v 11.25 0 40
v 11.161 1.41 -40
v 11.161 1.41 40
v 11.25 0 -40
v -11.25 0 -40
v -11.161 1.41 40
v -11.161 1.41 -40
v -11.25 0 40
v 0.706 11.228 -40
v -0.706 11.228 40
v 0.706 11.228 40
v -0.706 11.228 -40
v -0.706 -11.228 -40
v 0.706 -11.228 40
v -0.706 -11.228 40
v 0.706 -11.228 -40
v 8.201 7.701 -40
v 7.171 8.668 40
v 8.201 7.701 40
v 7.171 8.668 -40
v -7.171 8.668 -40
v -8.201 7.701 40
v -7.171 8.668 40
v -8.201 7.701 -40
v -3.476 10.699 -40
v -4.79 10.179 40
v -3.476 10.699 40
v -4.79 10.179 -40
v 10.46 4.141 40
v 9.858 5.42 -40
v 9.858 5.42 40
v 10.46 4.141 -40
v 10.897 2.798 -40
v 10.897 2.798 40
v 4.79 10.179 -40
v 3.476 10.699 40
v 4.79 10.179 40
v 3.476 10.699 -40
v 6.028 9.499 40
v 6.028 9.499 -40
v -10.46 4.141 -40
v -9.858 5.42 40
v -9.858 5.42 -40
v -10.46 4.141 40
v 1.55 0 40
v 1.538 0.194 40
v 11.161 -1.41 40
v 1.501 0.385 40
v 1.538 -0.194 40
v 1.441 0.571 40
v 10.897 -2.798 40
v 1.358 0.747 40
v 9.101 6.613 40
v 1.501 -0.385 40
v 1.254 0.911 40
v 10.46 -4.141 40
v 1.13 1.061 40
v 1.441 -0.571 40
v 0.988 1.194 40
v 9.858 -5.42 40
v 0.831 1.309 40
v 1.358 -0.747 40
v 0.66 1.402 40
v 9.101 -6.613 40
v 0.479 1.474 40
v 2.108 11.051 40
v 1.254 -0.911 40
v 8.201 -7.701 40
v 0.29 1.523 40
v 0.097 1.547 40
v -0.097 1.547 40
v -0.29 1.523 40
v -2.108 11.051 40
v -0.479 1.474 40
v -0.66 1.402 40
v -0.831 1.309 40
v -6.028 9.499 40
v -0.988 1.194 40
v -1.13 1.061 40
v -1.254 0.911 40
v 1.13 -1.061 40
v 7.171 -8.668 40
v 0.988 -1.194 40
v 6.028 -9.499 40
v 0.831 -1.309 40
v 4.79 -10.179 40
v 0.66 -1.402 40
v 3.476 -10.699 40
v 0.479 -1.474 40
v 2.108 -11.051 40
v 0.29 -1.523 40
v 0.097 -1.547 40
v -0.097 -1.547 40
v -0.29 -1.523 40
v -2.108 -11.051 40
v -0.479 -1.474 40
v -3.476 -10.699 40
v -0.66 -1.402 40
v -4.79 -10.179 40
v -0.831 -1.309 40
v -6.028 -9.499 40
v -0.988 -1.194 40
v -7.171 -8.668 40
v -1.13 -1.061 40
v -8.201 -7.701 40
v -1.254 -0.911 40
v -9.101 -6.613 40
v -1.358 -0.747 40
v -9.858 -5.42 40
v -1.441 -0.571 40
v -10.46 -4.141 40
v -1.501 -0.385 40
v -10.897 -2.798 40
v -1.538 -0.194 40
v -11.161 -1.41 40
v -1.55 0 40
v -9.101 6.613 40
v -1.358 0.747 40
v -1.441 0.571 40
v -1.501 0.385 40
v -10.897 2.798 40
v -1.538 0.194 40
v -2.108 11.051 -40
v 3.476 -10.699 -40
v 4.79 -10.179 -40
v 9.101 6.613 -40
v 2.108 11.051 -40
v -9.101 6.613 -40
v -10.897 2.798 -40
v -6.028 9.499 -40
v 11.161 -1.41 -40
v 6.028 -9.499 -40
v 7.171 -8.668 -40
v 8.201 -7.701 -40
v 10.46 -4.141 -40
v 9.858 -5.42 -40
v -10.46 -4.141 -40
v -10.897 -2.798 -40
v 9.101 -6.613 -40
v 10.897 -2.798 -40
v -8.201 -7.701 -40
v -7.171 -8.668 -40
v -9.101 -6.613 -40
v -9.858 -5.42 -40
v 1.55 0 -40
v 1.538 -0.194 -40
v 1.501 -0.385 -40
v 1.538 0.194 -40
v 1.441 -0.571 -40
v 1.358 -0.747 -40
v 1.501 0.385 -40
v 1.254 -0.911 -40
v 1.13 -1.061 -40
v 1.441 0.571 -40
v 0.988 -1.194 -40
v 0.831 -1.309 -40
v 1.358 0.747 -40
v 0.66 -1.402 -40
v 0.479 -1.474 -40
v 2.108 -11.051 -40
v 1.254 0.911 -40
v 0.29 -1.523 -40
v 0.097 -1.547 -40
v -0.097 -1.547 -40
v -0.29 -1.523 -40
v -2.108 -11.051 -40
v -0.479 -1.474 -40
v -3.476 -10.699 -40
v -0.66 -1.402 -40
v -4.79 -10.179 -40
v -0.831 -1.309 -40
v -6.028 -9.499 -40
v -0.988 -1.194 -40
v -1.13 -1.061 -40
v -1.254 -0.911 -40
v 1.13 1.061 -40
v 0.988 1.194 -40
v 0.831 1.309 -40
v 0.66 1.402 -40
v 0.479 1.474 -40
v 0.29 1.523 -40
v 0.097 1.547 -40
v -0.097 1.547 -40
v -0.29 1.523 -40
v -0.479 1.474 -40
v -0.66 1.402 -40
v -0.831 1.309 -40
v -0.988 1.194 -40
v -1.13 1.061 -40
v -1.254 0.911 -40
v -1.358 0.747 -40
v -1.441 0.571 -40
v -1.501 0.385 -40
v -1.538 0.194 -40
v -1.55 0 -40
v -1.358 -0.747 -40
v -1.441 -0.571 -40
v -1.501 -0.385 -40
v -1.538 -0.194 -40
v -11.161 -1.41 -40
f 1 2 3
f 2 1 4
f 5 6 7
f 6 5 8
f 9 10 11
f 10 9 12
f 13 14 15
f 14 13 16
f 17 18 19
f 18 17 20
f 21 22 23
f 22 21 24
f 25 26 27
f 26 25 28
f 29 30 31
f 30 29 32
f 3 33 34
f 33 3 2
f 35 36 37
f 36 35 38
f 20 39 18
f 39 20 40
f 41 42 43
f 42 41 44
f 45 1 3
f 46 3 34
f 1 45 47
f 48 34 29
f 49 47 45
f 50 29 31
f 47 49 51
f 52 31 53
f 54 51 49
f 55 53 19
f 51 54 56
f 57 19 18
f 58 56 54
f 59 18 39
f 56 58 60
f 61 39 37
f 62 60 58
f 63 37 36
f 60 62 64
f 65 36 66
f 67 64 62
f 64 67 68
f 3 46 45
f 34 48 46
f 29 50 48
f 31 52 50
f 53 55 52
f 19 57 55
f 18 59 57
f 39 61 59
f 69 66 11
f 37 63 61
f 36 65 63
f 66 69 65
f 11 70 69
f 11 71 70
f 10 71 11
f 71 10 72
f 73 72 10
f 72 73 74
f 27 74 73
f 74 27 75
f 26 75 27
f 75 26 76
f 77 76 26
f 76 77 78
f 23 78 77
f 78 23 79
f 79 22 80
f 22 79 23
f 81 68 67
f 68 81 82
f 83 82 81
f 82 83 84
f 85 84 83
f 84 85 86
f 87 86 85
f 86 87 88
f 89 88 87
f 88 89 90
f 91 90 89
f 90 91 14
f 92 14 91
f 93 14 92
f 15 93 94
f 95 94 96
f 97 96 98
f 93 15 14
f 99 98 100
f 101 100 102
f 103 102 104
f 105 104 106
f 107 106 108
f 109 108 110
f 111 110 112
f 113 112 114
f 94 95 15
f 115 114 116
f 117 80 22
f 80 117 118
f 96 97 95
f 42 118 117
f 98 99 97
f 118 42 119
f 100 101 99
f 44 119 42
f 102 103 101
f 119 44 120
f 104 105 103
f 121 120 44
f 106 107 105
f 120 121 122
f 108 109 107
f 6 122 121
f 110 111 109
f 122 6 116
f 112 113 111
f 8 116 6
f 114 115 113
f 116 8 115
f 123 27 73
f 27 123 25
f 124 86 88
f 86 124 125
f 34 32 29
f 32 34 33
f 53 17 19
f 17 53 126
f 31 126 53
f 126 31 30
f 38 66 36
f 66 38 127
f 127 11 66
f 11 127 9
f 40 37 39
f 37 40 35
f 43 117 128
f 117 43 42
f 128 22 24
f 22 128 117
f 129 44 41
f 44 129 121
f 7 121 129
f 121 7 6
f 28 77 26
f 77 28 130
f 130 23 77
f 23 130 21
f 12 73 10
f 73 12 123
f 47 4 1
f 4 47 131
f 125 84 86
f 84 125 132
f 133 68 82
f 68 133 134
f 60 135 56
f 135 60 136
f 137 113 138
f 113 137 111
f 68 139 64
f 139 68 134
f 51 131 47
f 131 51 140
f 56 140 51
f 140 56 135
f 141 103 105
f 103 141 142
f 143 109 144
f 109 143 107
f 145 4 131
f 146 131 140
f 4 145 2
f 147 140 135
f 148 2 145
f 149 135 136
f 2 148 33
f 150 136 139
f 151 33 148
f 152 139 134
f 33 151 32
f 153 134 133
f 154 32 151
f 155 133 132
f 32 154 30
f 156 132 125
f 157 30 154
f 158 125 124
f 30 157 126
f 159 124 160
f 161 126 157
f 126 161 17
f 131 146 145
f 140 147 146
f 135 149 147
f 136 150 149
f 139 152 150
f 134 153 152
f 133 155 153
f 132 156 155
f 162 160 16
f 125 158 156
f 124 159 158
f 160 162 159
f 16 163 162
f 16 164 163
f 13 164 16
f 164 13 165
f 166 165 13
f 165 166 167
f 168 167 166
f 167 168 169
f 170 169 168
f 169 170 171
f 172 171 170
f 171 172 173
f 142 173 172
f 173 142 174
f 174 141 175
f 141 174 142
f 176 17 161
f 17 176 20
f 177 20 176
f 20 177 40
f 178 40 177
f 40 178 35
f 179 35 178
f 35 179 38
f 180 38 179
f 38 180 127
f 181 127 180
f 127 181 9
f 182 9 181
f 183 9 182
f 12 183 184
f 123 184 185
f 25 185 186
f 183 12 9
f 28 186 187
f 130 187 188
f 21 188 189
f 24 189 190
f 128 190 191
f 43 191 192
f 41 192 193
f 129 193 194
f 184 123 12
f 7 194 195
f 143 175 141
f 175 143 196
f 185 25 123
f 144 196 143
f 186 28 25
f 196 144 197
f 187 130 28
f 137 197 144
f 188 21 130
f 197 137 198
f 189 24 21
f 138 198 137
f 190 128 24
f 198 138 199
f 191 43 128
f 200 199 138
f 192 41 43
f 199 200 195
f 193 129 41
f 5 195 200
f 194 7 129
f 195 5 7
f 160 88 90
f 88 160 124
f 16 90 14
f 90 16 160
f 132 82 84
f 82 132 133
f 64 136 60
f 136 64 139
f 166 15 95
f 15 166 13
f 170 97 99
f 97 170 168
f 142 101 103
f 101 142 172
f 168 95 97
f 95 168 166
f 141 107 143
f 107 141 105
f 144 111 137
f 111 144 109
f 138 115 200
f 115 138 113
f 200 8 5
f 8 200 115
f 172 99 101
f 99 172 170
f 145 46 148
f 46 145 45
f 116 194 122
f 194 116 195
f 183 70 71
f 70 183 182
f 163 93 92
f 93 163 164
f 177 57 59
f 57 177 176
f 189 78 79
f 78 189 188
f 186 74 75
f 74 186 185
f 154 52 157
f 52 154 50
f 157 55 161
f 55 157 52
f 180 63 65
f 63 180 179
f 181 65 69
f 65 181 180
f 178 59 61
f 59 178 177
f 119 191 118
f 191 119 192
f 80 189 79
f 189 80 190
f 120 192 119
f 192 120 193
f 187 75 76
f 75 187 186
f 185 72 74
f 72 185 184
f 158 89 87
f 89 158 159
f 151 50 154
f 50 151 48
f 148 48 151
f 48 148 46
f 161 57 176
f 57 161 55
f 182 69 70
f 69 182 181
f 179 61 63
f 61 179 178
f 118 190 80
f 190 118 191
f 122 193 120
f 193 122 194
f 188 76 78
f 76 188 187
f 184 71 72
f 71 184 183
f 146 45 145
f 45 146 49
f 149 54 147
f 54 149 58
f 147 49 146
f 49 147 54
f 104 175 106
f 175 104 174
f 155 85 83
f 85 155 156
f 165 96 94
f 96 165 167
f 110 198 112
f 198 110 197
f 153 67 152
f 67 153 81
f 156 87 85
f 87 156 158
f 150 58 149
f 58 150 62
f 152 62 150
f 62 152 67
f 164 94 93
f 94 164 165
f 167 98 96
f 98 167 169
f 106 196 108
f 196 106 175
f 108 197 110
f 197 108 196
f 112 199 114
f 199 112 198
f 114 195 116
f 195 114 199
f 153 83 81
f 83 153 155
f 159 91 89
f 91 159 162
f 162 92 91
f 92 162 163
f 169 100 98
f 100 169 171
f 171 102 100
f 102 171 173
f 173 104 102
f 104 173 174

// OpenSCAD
$fn = 50;


difference() {
	union() {
		translate(v = [0, 0, -40.0000000000]) {
			cylinder(h = 80, r = 11.2500000000);
		}
	}
	union() {
		translate(v = [0, 0, -100.0000000000]) {
			cylinder(h = 200, r = 1.5500000000);
		}
	}
}
